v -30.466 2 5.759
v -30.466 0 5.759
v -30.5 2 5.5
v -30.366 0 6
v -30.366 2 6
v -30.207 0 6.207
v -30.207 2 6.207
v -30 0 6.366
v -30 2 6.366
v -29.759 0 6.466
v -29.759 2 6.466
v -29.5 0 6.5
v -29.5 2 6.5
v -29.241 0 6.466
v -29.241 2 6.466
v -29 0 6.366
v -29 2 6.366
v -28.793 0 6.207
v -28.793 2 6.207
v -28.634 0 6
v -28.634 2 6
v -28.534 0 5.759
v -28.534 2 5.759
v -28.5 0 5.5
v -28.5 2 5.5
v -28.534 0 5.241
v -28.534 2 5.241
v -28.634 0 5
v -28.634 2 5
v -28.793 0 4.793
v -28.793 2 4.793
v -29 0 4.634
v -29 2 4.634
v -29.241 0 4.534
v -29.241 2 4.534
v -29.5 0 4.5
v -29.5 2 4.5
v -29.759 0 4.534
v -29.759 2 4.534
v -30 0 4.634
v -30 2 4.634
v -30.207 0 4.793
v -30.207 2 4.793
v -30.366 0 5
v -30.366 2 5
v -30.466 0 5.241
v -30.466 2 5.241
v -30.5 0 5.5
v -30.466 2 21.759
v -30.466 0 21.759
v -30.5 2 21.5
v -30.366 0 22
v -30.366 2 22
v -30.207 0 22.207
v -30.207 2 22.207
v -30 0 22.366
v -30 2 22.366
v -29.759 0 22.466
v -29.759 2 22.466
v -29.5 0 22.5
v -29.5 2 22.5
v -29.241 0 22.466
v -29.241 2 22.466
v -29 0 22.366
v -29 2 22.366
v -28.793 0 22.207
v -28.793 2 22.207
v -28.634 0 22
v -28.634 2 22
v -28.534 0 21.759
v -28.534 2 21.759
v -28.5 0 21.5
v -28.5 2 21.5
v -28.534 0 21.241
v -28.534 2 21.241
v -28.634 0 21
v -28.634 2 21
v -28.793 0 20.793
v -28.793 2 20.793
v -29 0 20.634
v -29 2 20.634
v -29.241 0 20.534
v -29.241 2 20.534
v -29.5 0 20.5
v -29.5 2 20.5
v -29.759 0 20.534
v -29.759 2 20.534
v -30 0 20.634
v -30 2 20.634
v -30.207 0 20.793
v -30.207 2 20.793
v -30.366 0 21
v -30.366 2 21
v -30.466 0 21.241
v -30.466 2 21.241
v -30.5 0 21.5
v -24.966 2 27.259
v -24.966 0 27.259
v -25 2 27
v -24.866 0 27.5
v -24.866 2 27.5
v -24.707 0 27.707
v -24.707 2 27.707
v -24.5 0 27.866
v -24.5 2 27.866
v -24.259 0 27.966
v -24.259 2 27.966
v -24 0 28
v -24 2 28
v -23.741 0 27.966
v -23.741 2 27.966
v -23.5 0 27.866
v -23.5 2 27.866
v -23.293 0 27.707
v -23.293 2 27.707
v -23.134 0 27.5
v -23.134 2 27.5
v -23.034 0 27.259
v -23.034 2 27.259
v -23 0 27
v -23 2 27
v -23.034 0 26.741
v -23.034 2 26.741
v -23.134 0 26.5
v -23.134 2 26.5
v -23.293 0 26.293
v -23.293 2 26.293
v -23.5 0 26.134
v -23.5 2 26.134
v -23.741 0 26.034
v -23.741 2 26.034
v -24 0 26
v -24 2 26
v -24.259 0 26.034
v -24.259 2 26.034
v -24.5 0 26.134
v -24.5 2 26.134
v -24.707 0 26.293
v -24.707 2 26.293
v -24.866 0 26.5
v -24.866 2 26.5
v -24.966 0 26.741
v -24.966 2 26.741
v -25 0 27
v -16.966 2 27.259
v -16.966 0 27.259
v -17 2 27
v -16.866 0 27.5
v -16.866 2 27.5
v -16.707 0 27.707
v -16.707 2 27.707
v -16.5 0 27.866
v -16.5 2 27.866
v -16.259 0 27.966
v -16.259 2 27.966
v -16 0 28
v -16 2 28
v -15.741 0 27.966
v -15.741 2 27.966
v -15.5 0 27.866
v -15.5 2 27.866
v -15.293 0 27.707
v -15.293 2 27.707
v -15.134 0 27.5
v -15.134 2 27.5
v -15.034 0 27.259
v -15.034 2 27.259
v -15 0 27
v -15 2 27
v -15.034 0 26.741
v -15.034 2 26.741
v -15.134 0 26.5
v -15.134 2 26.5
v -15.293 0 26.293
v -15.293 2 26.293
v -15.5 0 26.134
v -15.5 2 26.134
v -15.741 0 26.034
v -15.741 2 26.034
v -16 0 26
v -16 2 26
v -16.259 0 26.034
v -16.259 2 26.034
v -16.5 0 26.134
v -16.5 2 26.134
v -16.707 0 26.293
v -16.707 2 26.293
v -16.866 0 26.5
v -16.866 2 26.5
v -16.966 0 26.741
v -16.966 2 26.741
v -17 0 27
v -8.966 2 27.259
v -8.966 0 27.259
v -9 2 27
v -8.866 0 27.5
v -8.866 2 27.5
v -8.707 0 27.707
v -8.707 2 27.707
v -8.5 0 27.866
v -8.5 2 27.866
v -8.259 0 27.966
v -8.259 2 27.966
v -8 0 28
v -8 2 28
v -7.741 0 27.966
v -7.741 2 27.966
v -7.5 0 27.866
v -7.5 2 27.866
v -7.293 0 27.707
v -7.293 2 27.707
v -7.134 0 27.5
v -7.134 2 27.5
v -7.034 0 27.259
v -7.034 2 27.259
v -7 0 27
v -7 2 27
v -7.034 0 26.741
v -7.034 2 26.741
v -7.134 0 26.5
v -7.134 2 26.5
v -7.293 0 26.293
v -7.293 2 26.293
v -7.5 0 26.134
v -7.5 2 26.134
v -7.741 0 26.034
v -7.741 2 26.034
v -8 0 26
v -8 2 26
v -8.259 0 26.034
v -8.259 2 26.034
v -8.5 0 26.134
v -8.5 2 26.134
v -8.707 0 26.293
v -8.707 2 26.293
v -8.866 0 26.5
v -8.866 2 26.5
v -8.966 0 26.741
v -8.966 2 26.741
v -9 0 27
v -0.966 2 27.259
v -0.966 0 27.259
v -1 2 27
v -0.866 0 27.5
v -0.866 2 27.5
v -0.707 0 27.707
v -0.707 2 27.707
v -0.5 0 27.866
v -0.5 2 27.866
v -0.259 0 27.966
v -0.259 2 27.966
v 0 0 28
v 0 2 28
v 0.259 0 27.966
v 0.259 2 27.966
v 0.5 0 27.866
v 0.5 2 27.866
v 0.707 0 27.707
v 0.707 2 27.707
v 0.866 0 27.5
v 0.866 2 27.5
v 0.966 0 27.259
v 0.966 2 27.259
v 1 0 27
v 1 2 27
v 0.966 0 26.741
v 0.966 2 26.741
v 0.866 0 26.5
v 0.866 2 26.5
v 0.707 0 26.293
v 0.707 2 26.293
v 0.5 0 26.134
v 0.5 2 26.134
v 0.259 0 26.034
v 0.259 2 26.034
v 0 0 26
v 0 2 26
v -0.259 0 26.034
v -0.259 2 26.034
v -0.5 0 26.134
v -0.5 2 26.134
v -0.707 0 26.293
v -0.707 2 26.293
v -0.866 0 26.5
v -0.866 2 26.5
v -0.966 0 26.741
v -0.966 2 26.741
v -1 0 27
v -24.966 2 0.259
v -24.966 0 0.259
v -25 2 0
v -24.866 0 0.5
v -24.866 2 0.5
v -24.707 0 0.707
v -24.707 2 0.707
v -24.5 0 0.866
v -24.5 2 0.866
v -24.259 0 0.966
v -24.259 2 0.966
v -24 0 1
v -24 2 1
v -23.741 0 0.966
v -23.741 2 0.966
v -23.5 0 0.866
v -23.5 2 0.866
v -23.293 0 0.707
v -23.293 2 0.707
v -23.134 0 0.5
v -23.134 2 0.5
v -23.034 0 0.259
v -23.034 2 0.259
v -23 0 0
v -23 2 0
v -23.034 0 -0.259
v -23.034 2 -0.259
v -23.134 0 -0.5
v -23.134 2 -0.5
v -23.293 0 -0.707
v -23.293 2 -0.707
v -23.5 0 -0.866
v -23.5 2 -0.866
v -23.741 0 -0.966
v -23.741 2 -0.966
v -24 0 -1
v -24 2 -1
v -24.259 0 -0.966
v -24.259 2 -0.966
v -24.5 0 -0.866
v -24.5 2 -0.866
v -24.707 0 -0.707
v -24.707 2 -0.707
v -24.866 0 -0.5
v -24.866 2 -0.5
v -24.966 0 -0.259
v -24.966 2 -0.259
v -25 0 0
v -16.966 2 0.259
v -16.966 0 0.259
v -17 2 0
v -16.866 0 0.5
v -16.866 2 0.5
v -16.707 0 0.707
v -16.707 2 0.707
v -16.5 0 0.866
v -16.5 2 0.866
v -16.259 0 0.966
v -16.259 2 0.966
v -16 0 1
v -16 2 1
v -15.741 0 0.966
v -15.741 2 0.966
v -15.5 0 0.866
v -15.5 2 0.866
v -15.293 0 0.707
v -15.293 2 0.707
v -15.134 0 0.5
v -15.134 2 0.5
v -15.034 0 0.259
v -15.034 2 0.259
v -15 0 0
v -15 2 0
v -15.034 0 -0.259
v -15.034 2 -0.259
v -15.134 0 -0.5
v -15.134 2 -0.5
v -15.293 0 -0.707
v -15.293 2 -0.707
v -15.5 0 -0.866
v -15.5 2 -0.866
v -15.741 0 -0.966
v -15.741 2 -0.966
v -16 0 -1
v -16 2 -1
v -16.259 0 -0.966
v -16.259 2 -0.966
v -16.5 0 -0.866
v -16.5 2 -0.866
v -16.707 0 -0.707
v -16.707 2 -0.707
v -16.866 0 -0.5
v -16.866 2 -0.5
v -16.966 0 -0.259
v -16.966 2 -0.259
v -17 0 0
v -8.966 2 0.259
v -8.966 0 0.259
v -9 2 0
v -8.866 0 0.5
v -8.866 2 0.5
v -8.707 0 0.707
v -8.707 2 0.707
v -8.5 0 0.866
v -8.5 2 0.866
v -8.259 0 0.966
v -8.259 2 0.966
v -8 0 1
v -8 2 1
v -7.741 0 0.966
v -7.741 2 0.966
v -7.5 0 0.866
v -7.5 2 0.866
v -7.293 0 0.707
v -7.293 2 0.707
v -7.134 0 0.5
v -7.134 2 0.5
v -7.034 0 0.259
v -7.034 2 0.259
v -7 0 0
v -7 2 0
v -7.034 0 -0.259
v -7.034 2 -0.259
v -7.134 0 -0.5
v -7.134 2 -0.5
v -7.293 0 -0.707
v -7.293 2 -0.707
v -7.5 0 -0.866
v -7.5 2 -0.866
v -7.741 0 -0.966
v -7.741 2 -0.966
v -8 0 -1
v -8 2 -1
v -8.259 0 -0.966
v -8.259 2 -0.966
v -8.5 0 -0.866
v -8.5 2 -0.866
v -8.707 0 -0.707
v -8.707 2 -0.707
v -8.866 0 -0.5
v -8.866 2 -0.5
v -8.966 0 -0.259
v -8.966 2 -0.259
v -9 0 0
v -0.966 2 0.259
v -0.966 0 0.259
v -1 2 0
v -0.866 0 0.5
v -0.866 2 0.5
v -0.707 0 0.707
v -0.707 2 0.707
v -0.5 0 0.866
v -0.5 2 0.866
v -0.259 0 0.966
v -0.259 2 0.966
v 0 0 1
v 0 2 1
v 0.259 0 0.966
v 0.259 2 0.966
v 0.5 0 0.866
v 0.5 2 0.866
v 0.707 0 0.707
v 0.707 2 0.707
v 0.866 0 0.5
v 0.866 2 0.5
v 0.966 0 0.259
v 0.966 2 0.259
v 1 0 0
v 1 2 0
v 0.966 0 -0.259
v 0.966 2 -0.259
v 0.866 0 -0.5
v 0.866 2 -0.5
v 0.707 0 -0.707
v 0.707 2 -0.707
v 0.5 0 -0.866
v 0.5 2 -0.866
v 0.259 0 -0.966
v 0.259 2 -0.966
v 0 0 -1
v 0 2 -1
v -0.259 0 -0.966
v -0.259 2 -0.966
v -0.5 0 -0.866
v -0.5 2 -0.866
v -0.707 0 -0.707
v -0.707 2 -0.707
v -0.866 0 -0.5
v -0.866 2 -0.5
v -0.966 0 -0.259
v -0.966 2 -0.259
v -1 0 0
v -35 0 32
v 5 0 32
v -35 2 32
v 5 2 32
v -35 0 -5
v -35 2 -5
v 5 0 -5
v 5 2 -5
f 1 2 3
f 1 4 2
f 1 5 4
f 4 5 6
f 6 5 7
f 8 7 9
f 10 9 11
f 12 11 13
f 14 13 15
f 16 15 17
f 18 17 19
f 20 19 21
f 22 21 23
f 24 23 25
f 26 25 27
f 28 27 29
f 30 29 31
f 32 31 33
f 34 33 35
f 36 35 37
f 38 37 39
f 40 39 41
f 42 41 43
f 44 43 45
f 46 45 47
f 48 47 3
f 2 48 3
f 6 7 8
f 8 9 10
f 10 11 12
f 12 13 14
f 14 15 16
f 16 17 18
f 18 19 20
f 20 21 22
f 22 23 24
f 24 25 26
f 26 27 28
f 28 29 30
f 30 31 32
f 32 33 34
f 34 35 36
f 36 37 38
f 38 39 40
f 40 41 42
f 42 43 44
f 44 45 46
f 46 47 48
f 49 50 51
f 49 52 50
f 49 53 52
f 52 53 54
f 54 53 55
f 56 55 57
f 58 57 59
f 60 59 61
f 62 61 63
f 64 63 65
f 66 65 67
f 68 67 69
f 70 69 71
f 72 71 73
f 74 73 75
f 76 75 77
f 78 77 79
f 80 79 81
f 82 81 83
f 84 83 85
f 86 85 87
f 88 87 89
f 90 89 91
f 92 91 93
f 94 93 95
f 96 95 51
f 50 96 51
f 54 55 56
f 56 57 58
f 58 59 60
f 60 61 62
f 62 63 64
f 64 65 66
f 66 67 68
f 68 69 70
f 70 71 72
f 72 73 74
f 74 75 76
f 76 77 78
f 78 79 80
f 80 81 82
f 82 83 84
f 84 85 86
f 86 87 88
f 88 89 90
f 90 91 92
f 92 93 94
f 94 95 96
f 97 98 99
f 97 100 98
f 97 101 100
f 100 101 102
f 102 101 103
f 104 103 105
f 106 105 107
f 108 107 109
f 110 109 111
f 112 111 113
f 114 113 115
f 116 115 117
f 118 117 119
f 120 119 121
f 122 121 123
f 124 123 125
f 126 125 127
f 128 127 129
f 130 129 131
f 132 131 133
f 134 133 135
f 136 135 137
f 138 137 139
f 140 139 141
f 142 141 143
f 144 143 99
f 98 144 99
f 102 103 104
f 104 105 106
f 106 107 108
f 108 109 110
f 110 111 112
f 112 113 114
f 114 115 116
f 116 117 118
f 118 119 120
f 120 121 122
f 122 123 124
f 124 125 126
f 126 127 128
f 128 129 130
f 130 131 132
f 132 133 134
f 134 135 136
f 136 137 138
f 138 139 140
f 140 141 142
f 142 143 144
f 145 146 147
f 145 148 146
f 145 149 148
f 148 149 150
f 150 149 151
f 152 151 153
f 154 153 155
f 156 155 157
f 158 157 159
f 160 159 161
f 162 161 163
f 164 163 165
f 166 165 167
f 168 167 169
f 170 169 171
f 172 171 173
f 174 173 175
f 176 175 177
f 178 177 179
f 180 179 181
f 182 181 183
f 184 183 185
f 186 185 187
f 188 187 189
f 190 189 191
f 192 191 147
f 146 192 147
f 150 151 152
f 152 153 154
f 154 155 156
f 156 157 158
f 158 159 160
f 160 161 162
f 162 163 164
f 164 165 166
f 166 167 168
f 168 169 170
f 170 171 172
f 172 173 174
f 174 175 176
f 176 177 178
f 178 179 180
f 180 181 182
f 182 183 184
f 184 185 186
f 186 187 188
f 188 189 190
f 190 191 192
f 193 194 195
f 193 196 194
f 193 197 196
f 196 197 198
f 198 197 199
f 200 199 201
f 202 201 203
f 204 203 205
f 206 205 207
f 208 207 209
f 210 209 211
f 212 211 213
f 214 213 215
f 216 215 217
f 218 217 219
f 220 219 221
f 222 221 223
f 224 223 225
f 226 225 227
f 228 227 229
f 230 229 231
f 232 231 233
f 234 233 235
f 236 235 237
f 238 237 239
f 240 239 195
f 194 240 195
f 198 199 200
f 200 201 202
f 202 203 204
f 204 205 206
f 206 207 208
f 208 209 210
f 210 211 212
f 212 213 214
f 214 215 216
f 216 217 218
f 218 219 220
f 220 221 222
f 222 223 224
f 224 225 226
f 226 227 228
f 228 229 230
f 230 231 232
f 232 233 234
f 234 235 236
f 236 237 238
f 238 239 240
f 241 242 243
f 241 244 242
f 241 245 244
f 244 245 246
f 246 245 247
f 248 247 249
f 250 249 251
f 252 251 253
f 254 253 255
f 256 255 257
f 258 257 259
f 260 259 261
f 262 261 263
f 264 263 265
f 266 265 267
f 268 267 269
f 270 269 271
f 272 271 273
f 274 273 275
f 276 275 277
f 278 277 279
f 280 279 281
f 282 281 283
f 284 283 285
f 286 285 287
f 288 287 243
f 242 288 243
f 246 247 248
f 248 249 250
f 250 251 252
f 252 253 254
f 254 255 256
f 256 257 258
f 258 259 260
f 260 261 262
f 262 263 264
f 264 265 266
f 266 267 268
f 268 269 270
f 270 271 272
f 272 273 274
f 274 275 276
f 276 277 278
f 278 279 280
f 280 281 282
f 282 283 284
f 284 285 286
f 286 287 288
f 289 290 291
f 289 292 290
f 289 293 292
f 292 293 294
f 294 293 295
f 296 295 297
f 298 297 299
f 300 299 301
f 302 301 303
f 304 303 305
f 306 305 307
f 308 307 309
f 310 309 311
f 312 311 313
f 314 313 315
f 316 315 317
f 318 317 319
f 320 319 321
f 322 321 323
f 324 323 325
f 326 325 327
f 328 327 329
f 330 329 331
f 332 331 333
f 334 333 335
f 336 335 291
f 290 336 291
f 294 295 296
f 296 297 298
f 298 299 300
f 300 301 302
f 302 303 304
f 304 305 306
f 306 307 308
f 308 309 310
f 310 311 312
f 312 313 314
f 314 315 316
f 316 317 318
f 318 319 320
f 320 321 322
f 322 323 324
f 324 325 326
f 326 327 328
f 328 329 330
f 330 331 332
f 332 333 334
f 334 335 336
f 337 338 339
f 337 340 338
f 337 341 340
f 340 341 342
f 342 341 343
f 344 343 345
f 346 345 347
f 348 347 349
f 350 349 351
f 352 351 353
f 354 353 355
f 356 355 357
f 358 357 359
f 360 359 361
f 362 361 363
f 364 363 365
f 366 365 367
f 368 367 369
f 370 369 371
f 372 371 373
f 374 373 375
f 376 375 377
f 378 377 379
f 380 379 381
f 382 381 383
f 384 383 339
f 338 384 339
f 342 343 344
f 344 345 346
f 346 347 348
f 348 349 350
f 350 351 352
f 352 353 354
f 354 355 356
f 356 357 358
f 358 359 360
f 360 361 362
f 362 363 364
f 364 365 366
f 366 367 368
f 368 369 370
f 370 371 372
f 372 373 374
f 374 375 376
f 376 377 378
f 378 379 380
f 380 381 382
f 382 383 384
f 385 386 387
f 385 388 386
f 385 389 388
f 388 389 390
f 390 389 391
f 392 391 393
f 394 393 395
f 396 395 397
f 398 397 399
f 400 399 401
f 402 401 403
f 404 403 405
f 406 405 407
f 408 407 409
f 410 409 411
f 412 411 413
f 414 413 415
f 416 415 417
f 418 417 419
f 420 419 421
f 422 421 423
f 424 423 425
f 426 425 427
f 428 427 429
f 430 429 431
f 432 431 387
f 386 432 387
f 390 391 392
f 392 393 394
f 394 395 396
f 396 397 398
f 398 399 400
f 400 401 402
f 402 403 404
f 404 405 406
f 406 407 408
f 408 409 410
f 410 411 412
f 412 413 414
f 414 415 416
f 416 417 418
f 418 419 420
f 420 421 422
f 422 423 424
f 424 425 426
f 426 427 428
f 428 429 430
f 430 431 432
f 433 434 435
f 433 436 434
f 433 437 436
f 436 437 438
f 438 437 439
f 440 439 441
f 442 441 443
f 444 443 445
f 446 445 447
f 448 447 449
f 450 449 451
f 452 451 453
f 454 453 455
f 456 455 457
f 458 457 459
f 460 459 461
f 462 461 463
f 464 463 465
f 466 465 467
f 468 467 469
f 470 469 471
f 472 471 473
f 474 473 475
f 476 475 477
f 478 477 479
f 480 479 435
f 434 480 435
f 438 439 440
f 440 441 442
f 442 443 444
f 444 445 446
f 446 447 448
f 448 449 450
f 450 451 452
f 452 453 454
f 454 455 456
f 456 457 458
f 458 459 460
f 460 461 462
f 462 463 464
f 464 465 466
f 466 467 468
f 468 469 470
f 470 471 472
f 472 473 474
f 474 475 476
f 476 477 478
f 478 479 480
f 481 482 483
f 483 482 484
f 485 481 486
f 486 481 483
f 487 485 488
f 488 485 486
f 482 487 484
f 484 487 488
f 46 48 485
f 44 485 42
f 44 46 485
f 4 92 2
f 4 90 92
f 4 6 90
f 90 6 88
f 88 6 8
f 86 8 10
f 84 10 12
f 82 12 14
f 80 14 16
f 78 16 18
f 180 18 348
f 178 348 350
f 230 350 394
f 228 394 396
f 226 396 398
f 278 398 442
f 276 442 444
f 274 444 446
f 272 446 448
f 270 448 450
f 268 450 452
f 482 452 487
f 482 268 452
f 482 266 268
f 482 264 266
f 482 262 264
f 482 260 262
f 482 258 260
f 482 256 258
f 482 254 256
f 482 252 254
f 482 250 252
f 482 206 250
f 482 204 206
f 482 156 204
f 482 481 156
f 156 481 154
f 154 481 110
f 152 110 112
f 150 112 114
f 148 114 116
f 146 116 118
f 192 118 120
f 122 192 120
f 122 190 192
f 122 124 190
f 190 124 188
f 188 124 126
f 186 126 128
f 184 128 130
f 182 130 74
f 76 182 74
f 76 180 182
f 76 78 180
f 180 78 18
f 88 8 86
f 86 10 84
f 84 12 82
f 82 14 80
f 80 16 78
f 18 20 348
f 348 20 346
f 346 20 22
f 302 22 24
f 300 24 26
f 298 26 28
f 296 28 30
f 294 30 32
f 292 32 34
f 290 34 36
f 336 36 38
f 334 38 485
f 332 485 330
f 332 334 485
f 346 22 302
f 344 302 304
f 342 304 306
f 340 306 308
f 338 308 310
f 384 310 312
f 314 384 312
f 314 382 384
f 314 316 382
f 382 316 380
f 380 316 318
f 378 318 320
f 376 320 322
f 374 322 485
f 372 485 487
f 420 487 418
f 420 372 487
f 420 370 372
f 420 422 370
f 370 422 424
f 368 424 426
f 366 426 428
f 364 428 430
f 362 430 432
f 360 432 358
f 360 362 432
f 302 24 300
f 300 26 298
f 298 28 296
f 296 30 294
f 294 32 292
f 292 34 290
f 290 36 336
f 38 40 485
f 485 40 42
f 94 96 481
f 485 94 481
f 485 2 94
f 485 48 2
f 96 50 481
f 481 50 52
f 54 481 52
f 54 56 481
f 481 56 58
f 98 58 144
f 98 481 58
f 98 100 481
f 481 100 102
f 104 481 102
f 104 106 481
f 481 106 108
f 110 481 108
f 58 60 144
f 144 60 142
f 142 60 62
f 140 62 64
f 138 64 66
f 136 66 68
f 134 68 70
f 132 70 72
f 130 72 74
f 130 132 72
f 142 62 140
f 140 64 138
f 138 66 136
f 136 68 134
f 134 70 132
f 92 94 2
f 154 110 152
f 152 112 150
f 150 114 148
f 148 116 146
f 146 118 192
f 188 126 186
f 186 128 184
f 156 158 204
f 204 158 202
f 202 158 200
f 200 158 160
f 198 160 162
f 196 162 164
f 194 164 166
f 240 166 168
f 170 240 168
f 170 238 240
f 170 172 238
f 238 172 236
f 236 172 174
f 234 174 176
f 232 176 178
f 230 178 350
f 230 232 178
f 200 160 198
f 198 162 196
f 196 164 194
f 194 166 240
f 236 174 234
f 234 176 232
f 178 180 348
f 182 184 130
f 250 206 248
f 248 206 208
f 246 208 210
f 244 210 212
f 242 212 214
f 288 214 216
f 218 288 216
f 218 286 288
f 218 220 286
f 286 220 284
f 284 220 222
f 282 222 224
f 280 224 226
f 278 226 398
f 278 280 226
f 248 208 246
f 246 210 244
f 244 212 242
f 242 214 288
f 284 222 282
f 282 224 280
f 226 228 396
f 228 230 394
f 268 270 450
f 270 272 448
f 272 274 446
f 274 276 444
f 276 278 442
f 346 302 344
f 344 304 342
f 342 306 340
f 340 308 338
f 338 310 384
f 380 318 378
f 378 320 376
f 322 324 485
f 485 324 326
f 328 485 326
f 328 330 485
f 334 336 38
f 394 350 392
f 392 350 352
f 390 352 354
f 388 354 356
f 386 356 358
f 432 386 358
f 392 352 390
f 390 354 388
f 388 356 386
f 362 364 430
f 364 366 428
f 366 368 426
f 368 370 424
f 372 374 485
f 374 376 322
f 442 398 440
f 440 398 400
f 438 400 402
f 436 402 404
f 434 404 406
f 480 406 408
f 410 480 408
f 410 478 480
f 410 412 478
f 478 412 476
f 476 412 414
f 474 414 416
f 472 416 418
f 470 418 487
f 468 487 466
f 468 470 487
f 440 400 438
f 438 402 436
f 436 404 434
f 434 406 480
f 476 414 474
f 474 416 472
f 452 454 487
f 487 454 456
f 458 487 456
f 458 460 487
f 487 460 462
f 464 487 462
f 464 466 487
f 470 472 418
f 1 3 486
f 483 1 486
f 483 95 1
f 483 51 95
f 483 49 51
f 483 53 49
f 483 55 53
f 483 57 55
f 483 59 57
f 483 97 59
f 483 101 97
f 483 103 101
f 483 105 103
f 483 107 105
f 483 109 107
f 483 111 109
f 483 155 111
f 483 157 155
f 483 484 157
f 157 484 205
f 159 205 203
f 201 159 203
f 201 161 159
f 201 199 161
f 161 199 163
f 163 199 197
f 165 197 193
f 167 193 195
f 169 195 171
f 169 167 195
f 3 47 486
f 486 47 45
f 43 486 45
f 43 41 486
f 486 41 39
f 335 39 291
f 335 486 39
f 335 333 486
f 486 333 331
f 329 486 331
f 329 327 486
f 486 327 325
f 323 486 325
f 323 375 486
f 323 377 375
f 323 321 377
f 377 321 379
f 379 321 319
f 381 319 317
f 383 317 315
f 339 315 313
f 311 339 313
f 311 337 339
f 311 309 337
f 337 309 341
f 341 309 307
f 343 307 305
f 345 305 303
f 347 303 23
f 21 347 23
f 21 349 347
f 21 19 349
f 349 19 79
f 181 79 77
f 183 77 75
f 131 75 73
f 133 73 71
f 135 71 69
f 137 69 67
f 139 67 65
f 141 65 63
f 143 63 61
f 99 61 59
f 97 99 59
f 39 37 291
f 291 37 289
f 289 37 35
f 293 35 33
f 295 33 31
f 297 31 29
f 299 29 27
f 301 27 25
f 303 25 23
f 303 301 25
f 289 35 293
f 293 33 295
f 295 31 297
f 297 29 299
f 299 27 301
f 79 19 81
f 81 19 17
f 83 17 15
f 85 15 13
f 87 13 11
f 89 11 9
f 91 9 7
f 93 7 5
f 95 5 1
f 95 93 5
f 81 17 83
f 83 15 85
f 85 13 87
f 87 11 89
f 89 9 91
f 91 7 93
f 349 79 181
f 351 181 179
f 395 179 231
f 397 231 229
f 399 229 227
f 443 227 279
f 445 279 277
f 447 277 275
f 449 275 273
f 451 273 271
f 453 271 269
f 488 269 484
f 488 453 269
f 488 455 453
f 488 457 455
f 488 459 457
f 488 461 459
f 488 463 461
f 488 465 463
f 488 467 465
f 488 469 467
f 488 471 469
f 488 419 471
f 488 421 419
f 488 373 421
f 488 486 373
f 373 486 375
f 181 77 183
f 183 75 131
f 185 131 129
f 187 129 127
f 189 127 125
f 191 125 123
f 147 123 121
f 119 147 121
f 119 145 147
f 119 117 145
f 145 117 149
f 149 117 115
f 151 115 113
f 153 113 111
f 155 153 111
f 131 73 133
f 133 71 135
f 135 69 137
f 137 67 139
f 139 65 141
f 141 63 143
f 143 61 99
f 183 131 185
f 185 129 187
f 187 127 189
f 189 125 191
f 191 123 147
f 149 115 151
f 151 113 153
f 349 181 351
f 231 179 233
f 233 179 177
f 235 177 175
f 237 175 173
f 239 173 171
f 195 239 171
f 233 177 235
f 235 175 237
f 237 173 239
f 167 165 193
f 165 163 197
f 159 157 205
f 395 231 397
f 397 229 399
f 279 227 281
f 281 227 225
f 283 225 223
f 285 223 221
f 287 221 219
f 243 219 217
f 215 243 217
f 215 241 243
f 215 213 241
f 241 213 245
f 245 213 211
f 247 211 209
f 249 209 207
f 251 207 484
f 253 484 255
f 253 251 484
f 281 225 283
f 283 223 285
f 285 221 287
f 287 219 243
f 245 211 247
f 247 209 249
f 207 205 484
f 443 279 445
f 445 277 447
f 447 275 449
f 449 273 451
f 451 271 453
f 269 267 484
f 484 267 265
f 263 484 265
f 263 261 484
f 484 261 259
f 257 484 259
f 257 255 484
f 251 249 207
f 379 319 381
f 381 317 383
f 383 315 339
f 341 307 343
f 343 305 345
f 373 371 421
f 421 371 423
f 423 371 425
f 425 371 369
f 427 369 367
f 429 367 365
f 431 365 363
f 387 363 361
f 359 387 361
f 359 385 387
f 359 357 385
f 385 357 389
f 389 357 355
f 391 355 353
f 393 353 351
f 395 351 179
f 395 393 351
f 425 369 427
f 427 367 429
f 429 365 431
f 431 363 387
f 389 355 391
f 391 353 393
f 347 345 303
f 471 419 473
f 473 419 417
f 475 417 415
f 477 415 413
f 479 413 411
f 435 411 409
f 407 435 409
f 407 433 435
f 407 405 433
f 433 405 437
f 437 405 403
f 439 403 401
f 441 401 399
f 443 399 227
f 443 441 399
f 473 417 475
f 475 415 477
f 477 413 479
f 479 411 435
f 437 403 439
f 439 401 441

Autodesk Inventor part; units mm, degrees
ref_plane "YZ Plane" through (0, 0, 0) normal (1, 0, 0) x (0, 1, 0)
ref_plane "XZ Plane" through (0, 0, 0) normal (0, 1, 0) x (-1, 0, 0)
ref_plane "XY Plane" through (0, 0, 0) normal (0, 0, 1) x (1, 0, 0)
sketch "Esquisse1" plane through (0, 0, 0) normal (0, 1, 0) x (-1, 0, 0)
  line L0 (0, 0) -> (0, 27) construction
  line L1 (0, 0) -> (24, 0) construction
  line L2 (24, 0) -> (24, 27) construction
  line L3 (24, 27) -> (0, 27) construction
  line L4 (0, 0) -> (8, 0) construction
  line L5 (8, 0) -> (16, 0) construction
  line L6 (16, 0) -> (24, 0) construction
  circle A0 centre (0, 0) radius 1
  circle A1 centre (8, 0) radius 1
  circle A2 centre (16, 0) radius 1
  circle A3 centre (24, 0) radius 1
  line L7 (24, 0) -> (29.5, 0) construction
  circle A4 centre (0, 27) radius 1
  circle A5 centre (8, 27) radius 1
  circle A6 centre (16, 27) radius 1
  circle A7 centre (24, 27) radius 1
  line L8 (29.5, 0) -> (29.5, 5.5) construction
  line L9 (29.5, 5.5) -> (29.5, 21.5) construction
  circle A8 centre (29.5, 21.5) radius 1
  circle A9 centre (29.5, 5.5) radius 1
  line L10 (0, 0) -> (0, -5) construction
  line L11 (0, -5) -> (-5, -5) construction
  line L12 (-5, -5) -> (-5, 32)
  line L13 (-5, 32) -> (35, 32)
  line L14 (35, 32) -> (35, -5)
  line L15 (35, -5) -> (-5, -5)
  line L16 (16, 0) -> (24, 0) construction
  dimension "d0" = 8
  dimension "d1" = 8
  dimension "d2" = 2
  dimension "d3" = 2
  dimension "d4" = 5.5
  dimension "d5" = 2
  dimension "d6" = 2
  dimension "d7" = 5.5
  dimension "d8" = 16
  dimension "d9" = 2
  dimension "d10" = 2
  dimension "d12" = 27
  dimension "d13" = 5
  dimension "d15" = 8
  dimension "d16" = 5.5
  dimension "d17" = 40
  dimension "d18" = 32
  dimension "d19" = 19
  dimension "d20" = 27
extrude "Extrusion1" add sketch "Esquisse1" along normal blind 2
properties part number "AX12_gabarit"
